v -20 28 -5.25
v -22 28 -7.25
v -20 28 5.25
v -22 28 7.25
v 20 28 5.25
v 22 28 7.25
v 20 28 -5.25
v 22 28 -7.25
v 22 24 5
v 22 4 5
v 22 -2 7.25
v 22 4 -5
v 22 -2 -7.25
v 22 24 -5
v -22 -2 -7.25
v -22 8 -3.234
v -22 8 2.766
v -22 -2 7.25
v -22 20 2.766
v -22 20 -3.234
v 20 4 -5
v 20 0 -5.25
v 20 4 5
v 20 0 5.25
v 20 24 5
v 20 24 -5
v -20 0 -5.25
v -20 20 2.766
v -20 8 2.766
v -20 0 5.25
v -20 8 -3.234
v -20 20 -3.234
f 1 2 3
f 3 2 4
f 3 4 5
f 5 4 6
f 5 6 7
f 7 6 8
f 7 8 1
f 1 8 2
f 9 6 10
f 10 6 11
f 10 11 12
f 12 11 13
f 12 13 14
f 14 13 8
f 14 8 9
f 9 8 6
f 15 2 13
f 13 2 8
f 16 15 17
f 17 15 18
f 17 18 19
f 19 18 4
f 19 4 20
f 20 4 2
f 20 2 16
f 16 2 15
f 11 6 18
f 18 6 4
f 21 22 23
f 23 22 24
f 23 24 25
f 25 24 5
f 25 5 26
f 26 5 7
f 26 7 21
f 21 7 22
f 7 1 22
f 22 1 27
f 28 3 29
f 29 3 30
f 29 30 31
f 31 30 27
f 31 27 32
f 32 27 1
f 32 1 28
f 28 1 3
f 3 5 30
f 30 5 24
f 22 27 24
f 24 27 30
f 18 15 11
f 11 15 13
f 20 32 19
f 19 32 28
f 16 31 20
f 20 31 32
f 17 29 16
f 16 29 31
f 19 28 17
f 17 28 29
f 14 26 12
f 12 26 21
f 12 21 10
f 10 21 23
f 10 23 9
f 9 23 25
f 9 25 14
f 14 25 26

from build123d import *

# Parameters (mm, degrees)
SKETCH1_W           = 44
SKETCH1_H           = 14.5
SKETCH1_W_2         = 40
SKETCH1_H_2         = 10.5
BOSS_EXTRUDE1_DEPTH = 28
SKETCH2_W           = 44
SKETCH2_H           = 14.5
BOSS_EXTRUDE2_DEPTH = 2
CUT_EXTRUDE1_REACH  = 46
SKETCH3_W           = 6
SKETCH3_H           = 12
CUT_EXTRUDE2_REACH  = 46
SKETCH4_W           = 10
SKETCH4_H           = 20


with BuildPart() as part:
    # Sketch1 → Boss-Extrude1 (new body)
    with BuildSketch(Plane(origin=(0, 0, 0), x_dir=(1, 0, 0), z_dir=(0, 1, 0))):
        Rectangle(SKETCH1_W, SKETCH1_H)
        Rectangle(SKETCH1_W_2, SKETCH1_H_2, mode=Mode.SUBTRACT)
    extrude(amount=BOSS_EXTRUDE1_DEPTH)

    # Sketch2 → Boss-Extrude2 (add)
    with BuildSketch(Plane(origin=(0, 0, 0), x_dir=(1, 0, 0), z_dir=(0, 1, 0))):
        Rectangle(SKETCH2_W, SKETCH2_H)
    extrude(amount=-BOSS_EXTRUDE2_DEPTH)

    # Sketch3 → Cut-Extrude1 (cut, up to next)
    with BuildSketch(Plane.ZY.offset(22), mode=Mode.PRIVATE) as cut_extrude1_sk1:
        with Locations((-0.23425331, 14)):
            Rectangle(SKETCH3_W, SKETCH3_H)
    cut_extrude1_tool1 = extrude(cut_extrude1_sk1.sketch, amount=-CUT_EXTRUDE1_REACH, mode=Mode.PRIVATE) & part.part
    add(cut_extrude1_tool1.solids().sort_by_distance((-22, 14, -0.234253))[0], mode=Mode.SUBTRACT)

    # Sketch4 → Cut-Extrude2 (cut, up to next)
    with BuildSketch(Plane(origin=(22, 0, 0), x_dir=(0, 0, -1), z_dir=(1, 0, 0)), mode=Mode.PRIVATE) as cut_extrude2_sk1:
        with Locations((0, 14)):
            Rectangle(SKETCH4_W, SKETCH4_H)
    cut_extrude2_tool1 = extrude(cut_extrude2_sk1.sketch, amount=-CUT_EXTRUDE2_REACH, mode=Mode.PRIVATE) & part.part
    add(cut_extrude2_tool1.solids().sort_by_distance((22, 14, 0))[0], mode=Mode.SUBTRACT)


solid = part.part
